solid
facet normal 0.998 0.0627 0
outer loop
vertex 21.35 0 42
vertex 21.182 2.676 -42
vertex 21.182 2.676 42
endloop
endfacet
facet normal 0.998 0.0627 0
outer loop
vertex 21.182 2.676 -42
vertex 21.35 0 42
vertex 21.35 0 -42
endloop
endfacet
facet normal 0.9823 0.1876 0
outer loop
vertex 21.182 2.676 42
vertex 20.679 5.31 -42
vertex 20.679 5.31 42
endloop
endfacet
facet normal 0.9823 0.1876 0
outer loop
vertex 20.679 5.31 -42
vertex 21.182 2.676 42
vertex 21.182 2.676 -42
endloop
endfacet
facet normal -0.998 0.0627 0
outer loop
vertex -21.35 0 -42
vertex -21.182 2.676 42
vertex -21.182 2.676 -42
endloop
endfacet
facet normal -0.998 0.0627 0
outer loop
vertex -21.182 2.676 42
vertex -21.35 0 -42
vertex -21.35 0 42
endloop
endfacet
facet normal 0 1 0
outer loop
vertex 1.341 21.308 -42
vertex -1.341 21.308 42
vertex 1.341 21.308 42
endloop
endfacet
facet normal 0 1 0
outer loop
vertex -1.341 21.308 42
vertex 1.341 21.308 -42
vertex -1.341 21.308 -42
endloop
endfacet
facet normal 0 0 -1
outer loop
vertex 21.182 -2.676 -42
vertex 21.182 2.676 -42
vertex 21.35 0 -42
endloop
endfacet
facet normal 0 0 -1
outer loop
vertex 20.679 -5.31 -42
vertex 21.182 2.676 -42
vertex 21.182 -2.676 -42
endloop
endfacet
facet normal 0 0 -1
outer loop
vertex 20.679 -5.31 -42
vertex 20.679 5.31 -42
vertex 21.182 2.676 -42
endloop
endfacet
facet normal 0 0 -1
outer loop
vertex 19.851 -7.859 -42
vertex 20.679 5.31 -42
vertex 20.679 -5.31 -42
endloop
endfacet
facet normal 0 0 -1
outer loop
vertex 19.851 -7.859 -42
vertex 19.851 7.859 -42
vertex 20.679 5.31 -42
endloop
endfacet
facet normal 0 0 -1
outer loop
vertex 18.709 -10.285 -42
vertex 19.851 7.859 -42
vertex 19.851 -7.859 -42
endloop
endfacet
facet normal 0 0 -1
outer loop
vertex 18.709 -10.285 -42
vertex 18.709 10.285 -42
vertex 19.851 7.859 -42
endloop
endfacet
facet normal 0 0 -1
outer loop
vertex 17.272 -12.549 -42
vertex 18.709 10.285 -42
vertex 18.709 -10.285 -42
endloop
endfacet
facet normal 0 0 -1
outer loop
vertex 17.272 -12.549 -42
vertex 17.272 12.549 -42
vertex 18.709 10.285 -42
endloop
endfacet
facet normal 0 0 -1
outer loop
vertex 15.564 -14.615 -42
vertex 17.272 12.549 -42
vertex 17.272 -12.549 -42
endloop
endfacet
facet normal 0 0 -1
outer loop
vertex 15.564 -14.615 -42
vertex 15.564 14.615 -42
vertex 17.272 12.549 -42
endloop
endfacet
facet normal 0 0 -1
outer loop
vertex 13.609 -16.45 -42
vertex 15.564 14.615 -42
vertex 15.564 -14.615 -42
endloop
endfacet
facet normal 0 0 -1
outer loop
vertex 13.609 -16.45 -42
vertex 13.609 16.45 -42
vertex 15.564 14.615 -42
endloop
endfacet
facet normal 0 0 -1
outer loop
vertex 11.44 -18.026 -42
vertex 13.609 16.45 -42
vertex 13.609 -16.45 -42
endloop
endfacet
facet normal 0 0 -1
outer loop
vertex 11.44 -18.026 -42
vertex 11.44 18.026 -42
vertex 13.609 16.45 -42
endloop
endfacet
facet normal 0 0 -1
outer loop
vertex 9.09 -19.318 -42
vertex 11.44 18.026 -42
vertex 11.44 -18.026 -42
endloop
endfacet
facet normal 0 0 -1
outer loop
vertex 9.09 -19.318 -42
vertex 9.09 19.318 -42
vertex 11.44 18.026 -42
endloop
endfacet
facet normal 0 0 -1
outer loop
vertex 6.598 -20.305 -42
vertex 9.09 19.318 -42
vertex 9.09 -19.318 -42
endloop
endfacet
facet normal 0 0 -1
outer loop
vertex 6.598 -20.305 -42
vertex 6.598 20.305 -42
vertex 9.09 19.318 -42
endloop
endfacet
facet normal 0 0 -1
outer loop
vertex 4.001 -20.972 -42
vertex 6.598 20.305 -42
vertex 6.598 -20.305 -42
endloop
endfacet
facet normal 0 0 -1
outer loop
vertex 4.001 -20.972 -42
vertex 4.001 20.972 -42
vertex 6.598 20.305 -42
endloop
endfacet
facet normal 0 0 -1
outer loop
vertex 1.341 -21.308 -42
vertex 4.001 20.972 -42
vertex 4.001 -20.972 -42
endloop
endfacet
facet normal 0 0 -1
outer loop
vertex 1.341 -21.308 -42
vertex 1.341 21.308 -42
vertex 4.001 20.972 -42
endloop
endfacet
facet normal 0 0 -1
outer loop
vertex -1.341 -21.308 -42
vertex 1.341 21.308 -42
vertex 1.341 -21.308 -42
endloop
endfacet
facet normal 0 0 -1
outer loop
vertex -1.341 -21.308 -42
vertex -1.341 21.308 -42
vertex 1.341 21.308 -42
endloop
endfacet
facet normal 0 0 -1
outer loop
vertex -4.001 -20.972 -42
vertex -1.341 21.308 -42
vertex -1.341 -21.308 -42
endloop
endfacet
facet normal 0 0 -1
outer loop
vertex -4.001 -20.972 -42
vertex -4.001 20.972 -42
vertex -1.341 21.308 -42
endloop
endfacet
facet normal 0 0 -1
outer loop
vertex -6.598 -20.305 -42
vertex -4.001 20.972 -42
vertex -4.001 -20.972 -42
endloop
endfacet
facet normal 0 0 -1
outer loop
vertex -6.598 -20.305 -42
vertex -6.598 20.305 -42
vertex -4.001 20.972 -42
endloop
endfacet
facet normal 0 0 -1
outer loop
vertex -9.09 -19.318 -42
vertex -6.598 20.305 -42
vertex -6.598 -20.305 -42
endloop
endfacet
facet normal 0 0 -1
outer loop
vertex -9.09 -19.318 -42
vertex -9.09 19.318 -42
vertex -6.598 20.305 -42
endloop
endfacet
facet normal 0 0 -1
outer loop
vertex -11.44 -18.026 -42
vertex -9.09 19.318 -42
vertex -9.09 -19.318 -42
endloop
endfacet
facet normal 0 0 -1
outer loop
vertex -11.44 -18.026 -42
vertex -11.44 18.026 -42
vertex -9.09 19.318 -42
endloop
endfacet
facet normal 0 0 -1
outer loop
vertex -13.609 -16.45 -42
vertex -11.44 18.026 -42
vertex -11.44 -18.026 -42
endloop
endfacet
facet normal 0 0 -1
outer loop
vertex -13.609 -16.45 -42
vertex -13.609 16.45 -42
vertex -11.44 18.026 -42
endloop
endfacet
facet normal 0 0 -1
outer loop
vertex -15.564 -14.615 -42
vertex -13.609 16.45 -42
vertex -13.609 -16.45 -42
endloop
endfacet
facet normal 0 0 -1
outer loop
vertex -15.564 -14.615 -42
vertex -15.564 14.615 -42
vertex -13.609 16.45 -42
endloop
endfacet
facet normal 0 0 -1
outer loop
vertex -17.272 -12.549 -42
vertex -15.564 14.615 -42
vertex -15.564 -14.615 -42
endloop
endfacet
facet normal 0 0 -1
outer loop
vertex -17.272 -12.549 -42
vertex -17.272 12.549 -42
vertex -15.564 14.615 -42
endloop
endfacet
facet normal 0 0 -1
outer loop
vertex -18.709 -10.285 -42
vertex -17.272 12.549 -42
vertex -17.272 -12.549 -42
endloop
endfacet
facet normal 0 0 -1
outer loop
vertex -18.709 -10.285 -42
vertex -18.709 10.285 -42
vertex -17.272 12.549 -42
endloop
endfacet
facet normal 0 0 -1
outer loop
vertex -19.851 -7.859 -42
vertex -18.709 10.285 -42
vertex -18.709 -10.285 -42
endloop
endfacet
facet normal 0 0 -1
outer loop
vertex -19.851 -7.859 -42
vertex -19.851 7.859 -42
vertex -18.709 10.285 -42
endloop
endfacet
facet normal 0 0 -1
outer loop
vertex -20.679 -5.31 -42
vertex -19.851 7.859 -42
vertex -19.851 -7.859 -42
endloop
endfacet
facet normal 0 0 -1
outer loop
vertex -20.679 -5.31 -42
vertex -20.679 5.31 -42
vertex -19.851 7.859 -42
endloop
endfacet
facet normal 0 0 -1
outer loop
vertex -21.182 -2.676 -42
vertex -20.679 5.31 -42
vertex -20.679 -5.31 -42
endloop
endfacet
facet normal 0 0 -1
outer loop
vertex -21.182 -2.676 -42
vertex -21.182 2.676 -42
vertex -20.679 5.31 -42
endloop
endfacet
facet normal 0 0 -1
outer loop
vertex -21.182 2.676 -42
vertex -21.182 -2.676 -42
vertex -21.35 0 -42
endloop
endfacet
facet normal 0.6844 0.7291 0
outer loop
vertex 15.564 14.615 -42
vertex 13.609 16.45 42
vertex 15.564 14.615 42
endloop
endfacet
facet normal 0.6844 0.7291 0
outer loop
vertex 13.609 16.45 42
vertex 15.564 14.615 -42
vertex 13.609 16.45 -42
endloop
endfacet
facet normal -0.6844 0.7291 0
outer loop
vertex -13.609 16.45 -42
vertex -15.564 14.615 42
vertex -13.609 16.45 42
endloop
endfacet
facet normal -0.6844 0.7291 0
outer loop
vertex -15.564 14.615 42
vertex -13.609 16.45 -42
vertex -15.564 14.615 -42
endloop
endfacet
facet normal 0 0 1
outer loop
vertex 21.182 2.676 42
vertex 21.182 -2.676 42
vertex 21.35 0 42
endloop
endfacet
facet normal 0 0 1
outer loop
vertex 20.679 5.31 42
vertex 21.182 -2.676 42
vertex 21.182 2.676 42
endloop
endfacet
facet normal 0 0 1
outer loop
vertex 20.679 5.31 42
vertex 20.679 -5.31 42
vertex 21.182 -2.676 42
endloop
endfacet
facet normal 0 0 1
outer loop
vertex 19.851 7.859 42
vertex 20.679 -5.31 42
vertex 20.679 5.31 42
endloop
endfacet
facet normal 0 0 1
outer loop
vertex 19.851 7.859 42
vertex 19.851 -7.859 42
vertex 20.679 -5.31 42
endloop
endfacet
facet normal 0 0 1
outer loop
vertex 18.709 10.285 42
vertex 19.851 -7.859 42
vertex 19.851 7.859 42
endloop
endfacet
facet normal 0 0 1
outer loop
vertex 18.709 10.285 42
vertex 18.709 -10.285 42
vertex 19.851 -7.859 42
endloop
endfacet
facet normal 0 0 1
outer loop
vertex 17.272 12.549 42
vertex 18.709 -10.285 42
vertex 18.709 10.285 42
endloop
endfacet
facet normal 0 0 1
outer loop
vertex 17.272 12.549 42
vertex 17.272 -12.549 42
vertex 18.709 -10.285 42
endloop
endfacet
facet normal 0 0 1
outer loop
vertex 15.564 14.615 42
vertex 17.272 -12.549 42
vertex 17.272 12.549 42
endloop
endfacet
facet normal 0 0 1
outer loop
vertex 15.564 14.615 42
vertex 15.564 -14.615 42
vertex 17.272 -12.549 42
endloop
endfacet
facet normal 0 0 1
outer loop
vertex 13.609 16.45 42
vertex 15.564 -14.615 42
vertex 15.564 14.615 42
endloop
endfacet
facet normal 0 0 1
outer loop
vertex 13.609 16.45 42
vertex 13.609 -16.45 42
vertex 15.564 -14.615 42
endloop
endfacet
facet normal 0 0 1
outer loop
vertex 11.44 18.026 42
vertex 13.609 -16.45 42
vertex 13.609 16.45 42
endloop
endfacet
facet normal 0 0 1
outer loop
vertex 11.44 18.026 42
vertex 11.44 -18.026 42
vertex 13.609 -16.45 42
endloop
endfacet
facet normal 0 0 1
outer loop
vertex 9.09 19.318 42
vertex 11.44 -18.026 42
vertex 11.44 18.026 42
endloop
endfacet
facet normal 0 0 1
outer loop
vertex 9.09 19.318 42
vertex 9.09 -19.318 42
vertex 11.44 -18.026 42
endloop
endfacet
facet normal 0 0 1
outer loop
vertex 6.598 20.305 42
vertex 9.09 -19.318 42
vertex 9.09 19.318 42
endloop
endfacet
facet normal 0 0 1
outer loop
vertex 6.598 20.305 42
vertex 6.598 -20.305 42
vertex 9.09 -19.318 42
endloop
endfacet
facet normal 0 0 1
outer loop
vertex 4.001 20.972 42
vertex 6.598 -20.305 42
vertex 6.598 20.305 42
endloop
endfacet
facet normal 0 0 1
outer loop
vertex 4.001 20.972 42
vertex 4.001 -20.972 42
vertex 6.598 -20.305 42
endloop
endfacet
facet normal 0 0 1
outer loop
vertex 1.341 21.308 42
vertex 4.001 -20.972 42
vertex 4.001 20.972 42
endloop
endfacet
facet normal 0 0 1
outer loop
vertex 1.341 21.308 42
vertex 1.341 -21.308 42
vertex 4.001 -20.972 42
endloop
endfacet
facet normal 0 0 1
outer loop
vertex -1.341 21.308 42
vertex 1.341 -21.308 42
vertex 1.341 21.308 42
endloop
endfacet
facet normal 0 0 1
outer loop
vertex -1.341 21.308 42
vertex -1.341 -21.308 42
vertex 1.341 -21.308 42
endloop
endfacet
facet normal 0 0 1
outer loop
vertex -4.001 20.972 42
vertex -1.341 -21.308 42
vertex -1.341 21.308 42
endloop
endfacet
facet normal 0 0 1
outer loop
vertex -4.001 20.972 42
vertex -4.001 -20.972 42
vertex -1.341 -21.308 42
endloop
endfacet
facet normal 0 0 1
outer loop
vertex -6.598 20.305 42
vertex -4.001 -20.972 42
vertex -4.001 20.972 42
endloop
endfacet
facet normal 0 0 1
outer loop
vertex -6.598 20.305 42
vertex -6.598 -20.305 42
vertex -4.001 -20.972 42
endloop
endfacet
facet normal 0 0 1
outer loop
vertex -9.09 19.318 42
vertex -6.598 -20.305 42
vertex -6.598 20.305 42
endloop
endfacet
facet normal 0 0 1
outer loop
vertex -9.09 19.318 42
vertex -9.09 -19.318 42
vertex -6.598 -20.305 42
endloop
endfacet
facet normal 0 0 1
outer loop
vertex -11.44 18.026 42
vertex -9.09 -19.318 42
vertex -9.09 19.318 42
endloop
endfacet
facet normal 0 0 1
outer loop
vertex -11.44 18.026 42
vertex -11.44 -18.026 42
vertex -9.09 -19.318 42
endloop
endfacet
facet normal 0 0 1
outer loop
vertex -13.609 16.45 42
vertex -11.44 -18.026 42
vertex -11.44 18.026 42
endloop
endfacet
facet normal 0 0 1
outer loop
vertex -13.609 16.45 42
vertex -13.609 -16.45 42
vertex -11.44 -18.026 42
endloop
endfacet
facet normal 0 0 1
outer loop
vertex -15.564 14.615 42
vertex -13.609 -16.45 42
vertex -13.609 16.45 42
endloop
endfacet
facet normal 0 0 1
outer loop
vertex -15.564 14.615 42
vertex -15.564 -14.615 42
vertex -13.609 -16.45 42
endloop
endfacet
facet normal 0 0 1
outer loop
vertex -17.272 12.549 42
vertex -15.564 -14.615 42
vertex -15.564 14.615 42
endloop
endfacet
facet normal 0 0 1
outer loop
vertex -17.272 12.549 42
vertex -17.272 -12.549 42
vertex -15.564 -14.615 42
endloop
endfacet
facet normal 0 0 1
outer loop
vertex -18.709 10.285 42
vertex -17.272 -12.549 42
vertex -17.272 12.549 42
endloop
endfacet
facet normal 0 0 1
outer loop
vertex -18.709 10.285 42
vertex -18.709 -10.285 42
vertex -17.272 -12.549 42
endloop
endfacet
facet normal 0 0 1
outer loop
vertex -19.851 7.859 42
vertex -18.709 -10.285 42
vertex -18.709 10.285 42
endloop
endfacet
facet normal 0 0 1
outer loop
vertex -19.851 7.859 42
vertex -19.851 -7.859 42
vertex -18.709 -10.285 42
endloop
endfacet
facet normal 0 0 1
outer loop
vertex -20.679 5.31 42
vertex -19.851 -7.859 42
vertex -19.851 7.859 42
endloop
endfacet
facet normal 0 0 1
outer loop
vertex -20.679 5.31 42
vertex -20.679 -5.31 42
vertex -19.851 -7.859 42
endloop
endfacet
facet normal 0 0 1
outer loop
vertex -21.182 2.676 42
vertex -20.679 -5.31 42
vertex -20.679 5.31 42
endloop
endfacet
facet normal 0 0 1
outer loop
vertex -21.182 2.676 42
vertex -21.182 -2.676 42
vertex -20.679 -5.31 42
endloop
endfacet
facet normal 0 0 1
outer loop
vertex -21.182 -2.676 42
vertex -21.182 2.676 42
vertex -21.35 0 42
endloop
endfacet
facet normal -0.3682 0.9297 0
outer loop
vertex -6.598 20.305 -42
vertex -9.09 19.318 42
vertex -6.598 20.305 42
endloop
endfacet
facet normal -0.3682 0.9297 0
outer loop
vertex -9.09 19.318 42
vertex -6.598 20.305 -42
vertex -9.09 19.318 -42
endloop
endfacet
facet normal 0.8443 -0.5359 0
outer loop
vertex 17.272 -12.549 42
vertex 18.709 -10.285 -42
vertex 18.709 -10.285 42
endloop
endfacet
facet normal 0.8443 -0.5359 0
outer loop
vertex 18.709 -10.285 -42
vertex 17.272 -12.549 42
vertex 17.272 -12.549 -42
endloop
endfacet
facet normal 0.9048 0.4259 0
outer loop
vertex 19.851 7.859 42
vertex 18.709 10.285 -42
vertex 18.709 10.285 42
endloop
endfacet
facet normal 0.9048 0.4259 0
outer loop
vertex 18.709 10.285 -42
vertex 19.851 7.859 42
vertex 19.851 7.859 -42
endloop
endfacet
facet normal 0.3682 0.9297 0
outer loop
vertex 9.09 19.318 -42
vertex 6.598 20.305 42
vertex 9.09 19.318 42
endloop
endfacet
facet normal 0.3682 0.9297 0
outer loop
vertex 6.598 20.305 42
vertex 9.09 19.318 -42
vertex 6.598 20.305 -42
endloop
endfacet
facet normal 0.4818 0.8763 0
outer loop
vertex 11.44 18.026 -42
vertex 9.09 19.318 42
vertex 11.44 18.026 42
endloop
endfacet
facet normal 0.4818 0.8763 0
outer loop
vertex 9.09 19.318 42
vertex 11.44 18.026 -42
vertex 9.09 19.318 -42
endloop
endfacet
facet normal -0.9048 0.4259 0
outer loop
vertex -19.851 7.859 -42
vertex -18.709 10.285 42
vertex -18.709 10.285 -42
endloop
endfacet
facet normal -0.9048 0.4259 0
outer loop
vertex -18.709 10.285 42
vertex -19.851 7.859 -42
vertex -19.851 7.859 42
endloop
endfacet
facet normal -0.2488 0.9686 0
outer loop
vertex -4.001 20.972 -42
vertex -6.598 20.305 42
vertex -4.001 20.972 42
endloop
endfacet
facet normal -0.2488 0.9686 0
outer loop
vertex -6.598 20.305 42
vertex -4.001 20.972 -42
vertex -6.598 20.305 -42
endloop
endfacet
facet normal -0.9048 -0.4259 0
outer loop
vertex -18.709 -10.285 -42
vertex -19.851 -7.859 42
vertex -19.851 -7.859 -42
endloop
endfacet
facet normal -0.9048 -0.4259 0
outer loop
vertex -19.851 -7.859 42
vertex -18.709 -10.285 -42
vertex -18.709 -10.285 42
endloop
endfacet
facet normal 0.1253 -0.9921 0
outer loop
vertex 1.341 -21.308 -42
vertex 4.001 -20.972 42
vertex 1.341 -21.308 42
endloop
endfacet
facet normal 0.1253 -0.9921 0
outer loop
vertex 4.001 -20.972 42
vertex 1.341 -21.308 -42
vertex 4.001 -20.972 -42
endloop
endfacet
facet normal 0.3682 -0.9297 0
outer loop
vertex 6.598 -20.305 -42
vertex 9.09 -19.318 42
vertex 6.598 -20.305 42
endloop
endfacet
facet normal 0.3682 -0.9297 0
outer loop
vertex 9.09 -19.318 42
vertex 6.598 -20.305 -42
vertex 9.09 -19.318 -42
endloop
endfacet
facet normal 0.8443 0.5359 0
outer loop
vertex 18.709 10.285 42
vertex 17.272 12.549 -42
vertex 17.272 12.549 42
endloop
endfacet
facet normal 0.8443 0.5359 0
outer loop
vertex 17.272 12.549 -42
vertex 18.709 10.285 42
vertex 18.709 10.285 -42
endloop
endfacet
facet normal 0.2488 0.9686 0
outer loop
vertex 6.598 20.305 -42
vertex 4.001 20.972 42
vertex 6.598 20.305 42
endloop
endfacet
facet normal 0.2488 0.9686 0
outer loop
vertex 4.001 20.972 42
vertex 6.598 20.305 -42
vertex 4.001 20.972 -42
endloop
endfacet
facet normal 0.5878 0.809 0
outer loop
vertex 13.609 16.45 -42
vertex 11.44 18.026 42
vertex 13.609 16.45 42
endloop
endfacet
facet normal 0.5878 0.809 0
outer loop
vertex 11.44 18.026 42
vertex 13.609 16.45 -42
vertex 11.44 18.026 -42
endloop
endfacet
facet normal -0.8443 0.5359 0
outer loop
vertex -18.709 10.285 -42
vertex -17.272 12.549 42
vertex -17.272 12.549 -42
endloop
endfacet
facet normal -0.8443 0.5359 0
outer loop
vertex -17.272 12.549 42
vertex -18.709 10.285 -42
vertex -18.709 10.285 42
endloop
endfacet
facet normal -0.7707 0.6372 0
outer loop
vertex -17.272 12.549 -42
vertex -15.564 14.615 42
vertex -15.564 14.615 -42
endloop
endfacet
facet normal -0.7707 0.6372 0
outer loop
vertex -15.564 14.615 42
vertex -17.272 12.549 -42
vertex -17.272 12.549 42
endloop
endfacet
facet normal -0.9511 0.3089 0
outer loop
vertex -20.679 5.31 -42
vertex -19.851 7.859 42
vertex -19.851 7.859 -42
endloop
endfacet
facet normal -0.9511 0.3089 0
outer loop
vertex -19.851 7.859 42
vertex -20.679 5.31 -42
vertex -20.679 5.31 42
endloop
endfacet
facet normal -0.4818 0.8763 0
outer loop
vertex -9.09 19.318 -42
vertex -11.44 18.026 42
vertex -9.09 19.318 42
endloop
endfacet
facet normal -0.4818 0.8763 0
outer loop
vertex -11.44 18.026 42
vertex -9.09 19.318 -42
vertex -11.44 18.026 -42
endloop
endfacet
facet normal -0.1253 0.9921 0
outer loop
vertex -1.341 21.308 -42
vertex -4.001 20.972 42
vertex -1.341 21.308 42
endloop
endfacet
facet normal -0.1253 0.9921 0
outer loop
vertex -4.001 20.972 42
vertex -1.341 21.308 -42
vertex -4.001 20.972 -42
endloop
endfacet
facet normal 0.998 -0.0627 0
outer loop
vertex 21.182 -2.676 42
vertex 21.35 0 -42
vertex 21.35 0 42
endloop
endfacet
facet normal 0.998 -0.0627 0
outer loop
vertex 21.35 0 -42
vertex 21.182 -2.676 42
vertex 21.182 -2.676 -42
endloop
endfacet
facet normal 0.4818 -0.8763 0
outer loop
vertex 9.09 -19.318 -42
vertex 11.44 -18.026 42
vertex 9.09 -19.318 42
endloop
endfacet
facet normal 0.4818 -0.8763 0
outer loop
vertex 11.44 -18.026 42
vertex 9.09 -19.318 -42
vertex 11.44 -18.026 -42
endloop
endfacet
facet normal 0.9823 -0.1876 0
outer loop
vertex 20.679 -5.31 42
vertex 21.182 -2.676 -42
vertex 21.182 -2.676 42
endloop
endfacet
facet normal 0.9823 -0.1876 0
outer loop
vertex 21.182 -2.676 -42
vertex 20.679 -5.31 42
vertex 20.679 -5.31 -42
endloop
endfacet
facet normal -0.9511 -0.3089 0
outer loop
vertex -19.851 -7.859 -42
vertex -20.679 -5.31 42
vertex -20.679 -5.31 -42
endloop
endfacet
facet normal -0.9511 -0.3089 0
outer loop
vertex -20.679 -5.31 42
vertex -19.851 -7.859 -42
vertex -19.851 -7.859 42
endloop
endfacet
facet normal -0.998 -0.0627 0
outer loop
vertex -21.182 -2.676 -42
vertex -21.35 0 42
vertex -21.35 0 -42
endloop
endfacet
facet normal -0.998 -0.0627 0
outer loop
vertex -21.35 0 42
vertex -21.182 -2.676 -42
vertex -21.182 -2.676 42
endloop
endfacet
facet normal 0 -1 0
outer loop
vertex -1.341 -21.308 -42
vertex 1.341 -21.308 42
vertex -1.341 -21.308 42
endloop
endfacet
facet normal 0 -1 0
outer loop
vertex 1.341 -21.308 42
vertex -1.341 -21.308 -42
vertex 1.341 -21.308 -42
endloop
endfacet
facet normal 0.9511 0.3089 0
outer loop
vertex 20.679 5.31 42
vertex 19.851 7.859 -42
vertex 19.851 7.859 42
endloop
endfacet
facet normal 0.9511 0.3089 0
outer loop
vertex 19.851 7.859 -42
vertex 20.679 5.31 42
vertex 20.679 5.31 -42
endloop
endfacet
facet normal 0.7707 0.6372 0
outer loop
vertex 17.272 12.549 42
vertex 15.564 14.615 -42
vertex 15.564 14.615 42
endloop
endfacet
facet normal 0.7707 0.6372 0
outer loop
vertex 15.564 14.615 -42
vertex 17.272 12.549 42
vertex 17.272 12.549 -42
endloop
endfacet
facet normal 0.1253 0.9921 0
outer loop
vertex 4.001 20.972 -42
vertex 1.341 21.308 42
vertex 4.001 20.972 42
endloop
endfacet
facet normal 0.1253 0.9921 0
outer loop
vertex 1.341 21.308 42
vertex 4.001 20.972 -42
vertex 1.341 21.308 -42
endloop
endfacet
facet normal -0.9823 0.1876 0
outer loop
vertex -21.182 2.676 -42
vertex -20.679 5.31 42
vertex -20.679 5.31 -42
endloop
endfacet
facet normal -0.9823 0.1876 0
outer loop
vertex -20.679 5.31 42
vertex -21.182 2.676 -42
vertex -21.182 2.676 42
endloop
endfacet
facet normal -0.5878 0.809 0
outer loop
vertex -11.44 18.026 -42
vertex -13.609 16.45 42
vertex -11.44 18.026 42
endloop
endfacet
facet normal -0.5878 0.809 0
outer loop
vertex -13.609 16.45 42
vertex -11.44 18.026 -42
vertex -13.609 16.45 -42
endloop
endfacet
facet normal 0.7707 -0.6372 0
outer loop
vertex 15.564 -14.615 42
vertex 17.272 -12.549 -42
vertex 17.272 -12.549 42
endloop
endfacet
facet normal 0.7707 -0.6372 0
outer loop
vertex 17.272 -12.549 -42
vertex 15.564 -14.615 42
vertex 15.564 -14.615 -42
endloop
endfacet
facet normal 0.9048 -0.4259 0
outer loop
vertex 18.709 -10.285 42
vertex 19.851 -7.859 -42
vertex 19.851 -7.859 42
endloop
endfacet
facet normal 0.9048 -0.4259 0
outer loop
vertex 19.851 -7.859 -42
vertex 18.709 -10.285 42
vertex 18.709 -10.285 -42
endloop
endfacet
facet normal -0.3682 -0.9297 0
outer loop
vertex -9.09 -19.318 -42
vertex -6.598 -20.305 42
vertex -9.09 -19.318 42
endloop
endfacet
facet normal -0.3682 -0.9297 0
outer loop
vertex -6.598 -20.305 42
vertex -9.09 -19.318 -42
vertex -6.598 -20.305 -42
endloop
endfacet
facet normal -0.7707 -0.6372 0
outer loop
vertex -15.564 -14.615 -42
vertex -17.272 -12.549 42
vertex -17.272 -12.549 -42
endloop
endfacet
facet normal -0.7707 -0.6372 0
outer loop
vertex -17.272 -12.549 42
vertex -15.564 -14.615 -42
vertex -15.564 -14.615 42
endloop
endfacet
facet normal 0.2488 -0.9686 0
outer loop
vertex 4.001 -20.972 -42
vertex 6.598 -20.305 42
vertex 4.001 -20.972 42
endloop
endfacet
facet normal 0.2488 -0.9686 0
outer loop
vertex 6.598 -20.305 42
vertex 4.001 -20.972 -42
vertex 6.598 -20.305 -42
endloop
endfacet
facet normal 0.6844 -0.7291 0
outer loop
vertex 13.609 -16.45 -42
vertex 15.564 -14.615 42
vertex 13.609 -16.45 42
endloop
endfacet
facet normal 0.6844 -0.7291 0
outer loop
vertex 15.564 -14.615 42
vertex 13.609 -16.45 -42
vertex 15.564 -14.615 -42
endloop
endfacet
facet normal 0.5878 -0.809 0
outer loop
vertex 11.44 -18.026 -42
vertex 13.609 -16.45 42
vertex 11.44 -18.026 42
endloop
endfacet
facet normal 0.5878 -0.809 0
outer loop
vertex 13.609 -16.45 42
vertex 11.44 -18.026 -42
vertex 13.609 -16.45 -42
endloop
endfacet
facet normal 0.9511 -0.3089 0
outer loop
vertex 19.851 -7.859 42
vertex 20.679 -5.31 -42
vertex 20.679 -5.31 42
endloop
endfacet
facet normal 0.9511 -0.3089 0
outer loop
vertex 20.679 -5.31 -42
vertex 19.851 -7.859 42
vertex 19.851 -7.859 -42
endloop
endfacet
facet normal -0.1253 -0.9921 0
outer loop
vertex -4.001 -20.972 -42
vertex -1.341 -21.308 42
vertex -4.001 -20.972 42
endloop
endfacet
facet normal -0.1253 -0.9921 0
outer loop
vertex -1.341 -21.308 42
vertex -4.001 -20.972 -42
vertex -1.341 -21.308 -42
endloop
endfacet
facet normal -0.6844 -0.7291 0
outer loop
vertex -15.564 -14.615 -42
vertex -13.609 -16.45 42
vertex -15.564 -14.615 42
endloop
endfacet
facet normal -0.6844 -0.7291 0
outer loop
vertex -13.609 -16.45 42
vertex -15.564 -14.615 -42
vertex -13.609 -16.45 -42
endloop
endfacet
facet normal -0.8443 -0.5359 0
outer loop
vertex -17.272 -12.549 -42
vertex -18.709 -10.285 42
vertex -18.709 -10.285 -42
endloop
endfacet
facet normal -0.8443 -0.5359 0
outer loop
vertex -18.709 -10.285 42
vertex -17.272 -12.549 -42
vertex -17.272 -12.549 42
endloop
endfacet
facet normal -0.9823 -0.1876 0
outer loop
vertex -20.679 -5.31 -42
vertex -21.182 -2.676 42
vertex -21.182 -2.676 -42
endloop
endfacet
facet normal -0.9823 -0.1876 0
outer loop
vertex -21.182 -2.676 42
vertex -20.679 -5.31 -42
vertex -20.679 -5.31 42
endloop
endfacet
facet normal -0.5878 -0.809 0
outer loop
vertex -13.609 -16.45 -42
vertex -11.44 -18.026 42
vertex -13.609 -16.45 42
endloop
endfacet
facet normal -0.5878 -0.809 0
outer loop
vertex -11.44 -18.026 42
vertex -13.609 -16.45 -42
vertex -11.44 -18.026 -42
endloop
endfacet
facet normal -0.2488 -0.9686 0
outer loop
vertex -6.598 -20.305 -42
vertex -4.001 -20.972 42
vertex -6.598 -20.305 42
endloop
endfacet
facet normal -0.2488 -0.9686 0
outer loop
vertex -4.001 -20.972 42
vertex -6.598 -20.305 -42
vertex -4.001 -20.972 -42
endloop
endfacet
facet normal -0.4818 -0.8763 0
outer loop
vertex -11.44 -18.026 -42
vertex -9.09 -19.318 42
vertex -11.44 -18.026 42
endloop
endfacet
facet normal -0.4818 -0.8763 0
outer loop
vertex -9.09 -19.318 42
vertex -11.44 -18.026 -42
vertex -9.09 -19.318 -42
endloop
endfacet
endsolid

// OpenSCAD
$fn = 50;


difference() {
	union() {
		translate(v = [0, 0, -42.0000000000]) {
			cylinder(h = 84, r = 21.3500000000);
		}
	}
	union() {
		translate(v = [0, 0, -100.0000000000]) {
			cylinder(h = 200, r = 0);
		}
	}
}
